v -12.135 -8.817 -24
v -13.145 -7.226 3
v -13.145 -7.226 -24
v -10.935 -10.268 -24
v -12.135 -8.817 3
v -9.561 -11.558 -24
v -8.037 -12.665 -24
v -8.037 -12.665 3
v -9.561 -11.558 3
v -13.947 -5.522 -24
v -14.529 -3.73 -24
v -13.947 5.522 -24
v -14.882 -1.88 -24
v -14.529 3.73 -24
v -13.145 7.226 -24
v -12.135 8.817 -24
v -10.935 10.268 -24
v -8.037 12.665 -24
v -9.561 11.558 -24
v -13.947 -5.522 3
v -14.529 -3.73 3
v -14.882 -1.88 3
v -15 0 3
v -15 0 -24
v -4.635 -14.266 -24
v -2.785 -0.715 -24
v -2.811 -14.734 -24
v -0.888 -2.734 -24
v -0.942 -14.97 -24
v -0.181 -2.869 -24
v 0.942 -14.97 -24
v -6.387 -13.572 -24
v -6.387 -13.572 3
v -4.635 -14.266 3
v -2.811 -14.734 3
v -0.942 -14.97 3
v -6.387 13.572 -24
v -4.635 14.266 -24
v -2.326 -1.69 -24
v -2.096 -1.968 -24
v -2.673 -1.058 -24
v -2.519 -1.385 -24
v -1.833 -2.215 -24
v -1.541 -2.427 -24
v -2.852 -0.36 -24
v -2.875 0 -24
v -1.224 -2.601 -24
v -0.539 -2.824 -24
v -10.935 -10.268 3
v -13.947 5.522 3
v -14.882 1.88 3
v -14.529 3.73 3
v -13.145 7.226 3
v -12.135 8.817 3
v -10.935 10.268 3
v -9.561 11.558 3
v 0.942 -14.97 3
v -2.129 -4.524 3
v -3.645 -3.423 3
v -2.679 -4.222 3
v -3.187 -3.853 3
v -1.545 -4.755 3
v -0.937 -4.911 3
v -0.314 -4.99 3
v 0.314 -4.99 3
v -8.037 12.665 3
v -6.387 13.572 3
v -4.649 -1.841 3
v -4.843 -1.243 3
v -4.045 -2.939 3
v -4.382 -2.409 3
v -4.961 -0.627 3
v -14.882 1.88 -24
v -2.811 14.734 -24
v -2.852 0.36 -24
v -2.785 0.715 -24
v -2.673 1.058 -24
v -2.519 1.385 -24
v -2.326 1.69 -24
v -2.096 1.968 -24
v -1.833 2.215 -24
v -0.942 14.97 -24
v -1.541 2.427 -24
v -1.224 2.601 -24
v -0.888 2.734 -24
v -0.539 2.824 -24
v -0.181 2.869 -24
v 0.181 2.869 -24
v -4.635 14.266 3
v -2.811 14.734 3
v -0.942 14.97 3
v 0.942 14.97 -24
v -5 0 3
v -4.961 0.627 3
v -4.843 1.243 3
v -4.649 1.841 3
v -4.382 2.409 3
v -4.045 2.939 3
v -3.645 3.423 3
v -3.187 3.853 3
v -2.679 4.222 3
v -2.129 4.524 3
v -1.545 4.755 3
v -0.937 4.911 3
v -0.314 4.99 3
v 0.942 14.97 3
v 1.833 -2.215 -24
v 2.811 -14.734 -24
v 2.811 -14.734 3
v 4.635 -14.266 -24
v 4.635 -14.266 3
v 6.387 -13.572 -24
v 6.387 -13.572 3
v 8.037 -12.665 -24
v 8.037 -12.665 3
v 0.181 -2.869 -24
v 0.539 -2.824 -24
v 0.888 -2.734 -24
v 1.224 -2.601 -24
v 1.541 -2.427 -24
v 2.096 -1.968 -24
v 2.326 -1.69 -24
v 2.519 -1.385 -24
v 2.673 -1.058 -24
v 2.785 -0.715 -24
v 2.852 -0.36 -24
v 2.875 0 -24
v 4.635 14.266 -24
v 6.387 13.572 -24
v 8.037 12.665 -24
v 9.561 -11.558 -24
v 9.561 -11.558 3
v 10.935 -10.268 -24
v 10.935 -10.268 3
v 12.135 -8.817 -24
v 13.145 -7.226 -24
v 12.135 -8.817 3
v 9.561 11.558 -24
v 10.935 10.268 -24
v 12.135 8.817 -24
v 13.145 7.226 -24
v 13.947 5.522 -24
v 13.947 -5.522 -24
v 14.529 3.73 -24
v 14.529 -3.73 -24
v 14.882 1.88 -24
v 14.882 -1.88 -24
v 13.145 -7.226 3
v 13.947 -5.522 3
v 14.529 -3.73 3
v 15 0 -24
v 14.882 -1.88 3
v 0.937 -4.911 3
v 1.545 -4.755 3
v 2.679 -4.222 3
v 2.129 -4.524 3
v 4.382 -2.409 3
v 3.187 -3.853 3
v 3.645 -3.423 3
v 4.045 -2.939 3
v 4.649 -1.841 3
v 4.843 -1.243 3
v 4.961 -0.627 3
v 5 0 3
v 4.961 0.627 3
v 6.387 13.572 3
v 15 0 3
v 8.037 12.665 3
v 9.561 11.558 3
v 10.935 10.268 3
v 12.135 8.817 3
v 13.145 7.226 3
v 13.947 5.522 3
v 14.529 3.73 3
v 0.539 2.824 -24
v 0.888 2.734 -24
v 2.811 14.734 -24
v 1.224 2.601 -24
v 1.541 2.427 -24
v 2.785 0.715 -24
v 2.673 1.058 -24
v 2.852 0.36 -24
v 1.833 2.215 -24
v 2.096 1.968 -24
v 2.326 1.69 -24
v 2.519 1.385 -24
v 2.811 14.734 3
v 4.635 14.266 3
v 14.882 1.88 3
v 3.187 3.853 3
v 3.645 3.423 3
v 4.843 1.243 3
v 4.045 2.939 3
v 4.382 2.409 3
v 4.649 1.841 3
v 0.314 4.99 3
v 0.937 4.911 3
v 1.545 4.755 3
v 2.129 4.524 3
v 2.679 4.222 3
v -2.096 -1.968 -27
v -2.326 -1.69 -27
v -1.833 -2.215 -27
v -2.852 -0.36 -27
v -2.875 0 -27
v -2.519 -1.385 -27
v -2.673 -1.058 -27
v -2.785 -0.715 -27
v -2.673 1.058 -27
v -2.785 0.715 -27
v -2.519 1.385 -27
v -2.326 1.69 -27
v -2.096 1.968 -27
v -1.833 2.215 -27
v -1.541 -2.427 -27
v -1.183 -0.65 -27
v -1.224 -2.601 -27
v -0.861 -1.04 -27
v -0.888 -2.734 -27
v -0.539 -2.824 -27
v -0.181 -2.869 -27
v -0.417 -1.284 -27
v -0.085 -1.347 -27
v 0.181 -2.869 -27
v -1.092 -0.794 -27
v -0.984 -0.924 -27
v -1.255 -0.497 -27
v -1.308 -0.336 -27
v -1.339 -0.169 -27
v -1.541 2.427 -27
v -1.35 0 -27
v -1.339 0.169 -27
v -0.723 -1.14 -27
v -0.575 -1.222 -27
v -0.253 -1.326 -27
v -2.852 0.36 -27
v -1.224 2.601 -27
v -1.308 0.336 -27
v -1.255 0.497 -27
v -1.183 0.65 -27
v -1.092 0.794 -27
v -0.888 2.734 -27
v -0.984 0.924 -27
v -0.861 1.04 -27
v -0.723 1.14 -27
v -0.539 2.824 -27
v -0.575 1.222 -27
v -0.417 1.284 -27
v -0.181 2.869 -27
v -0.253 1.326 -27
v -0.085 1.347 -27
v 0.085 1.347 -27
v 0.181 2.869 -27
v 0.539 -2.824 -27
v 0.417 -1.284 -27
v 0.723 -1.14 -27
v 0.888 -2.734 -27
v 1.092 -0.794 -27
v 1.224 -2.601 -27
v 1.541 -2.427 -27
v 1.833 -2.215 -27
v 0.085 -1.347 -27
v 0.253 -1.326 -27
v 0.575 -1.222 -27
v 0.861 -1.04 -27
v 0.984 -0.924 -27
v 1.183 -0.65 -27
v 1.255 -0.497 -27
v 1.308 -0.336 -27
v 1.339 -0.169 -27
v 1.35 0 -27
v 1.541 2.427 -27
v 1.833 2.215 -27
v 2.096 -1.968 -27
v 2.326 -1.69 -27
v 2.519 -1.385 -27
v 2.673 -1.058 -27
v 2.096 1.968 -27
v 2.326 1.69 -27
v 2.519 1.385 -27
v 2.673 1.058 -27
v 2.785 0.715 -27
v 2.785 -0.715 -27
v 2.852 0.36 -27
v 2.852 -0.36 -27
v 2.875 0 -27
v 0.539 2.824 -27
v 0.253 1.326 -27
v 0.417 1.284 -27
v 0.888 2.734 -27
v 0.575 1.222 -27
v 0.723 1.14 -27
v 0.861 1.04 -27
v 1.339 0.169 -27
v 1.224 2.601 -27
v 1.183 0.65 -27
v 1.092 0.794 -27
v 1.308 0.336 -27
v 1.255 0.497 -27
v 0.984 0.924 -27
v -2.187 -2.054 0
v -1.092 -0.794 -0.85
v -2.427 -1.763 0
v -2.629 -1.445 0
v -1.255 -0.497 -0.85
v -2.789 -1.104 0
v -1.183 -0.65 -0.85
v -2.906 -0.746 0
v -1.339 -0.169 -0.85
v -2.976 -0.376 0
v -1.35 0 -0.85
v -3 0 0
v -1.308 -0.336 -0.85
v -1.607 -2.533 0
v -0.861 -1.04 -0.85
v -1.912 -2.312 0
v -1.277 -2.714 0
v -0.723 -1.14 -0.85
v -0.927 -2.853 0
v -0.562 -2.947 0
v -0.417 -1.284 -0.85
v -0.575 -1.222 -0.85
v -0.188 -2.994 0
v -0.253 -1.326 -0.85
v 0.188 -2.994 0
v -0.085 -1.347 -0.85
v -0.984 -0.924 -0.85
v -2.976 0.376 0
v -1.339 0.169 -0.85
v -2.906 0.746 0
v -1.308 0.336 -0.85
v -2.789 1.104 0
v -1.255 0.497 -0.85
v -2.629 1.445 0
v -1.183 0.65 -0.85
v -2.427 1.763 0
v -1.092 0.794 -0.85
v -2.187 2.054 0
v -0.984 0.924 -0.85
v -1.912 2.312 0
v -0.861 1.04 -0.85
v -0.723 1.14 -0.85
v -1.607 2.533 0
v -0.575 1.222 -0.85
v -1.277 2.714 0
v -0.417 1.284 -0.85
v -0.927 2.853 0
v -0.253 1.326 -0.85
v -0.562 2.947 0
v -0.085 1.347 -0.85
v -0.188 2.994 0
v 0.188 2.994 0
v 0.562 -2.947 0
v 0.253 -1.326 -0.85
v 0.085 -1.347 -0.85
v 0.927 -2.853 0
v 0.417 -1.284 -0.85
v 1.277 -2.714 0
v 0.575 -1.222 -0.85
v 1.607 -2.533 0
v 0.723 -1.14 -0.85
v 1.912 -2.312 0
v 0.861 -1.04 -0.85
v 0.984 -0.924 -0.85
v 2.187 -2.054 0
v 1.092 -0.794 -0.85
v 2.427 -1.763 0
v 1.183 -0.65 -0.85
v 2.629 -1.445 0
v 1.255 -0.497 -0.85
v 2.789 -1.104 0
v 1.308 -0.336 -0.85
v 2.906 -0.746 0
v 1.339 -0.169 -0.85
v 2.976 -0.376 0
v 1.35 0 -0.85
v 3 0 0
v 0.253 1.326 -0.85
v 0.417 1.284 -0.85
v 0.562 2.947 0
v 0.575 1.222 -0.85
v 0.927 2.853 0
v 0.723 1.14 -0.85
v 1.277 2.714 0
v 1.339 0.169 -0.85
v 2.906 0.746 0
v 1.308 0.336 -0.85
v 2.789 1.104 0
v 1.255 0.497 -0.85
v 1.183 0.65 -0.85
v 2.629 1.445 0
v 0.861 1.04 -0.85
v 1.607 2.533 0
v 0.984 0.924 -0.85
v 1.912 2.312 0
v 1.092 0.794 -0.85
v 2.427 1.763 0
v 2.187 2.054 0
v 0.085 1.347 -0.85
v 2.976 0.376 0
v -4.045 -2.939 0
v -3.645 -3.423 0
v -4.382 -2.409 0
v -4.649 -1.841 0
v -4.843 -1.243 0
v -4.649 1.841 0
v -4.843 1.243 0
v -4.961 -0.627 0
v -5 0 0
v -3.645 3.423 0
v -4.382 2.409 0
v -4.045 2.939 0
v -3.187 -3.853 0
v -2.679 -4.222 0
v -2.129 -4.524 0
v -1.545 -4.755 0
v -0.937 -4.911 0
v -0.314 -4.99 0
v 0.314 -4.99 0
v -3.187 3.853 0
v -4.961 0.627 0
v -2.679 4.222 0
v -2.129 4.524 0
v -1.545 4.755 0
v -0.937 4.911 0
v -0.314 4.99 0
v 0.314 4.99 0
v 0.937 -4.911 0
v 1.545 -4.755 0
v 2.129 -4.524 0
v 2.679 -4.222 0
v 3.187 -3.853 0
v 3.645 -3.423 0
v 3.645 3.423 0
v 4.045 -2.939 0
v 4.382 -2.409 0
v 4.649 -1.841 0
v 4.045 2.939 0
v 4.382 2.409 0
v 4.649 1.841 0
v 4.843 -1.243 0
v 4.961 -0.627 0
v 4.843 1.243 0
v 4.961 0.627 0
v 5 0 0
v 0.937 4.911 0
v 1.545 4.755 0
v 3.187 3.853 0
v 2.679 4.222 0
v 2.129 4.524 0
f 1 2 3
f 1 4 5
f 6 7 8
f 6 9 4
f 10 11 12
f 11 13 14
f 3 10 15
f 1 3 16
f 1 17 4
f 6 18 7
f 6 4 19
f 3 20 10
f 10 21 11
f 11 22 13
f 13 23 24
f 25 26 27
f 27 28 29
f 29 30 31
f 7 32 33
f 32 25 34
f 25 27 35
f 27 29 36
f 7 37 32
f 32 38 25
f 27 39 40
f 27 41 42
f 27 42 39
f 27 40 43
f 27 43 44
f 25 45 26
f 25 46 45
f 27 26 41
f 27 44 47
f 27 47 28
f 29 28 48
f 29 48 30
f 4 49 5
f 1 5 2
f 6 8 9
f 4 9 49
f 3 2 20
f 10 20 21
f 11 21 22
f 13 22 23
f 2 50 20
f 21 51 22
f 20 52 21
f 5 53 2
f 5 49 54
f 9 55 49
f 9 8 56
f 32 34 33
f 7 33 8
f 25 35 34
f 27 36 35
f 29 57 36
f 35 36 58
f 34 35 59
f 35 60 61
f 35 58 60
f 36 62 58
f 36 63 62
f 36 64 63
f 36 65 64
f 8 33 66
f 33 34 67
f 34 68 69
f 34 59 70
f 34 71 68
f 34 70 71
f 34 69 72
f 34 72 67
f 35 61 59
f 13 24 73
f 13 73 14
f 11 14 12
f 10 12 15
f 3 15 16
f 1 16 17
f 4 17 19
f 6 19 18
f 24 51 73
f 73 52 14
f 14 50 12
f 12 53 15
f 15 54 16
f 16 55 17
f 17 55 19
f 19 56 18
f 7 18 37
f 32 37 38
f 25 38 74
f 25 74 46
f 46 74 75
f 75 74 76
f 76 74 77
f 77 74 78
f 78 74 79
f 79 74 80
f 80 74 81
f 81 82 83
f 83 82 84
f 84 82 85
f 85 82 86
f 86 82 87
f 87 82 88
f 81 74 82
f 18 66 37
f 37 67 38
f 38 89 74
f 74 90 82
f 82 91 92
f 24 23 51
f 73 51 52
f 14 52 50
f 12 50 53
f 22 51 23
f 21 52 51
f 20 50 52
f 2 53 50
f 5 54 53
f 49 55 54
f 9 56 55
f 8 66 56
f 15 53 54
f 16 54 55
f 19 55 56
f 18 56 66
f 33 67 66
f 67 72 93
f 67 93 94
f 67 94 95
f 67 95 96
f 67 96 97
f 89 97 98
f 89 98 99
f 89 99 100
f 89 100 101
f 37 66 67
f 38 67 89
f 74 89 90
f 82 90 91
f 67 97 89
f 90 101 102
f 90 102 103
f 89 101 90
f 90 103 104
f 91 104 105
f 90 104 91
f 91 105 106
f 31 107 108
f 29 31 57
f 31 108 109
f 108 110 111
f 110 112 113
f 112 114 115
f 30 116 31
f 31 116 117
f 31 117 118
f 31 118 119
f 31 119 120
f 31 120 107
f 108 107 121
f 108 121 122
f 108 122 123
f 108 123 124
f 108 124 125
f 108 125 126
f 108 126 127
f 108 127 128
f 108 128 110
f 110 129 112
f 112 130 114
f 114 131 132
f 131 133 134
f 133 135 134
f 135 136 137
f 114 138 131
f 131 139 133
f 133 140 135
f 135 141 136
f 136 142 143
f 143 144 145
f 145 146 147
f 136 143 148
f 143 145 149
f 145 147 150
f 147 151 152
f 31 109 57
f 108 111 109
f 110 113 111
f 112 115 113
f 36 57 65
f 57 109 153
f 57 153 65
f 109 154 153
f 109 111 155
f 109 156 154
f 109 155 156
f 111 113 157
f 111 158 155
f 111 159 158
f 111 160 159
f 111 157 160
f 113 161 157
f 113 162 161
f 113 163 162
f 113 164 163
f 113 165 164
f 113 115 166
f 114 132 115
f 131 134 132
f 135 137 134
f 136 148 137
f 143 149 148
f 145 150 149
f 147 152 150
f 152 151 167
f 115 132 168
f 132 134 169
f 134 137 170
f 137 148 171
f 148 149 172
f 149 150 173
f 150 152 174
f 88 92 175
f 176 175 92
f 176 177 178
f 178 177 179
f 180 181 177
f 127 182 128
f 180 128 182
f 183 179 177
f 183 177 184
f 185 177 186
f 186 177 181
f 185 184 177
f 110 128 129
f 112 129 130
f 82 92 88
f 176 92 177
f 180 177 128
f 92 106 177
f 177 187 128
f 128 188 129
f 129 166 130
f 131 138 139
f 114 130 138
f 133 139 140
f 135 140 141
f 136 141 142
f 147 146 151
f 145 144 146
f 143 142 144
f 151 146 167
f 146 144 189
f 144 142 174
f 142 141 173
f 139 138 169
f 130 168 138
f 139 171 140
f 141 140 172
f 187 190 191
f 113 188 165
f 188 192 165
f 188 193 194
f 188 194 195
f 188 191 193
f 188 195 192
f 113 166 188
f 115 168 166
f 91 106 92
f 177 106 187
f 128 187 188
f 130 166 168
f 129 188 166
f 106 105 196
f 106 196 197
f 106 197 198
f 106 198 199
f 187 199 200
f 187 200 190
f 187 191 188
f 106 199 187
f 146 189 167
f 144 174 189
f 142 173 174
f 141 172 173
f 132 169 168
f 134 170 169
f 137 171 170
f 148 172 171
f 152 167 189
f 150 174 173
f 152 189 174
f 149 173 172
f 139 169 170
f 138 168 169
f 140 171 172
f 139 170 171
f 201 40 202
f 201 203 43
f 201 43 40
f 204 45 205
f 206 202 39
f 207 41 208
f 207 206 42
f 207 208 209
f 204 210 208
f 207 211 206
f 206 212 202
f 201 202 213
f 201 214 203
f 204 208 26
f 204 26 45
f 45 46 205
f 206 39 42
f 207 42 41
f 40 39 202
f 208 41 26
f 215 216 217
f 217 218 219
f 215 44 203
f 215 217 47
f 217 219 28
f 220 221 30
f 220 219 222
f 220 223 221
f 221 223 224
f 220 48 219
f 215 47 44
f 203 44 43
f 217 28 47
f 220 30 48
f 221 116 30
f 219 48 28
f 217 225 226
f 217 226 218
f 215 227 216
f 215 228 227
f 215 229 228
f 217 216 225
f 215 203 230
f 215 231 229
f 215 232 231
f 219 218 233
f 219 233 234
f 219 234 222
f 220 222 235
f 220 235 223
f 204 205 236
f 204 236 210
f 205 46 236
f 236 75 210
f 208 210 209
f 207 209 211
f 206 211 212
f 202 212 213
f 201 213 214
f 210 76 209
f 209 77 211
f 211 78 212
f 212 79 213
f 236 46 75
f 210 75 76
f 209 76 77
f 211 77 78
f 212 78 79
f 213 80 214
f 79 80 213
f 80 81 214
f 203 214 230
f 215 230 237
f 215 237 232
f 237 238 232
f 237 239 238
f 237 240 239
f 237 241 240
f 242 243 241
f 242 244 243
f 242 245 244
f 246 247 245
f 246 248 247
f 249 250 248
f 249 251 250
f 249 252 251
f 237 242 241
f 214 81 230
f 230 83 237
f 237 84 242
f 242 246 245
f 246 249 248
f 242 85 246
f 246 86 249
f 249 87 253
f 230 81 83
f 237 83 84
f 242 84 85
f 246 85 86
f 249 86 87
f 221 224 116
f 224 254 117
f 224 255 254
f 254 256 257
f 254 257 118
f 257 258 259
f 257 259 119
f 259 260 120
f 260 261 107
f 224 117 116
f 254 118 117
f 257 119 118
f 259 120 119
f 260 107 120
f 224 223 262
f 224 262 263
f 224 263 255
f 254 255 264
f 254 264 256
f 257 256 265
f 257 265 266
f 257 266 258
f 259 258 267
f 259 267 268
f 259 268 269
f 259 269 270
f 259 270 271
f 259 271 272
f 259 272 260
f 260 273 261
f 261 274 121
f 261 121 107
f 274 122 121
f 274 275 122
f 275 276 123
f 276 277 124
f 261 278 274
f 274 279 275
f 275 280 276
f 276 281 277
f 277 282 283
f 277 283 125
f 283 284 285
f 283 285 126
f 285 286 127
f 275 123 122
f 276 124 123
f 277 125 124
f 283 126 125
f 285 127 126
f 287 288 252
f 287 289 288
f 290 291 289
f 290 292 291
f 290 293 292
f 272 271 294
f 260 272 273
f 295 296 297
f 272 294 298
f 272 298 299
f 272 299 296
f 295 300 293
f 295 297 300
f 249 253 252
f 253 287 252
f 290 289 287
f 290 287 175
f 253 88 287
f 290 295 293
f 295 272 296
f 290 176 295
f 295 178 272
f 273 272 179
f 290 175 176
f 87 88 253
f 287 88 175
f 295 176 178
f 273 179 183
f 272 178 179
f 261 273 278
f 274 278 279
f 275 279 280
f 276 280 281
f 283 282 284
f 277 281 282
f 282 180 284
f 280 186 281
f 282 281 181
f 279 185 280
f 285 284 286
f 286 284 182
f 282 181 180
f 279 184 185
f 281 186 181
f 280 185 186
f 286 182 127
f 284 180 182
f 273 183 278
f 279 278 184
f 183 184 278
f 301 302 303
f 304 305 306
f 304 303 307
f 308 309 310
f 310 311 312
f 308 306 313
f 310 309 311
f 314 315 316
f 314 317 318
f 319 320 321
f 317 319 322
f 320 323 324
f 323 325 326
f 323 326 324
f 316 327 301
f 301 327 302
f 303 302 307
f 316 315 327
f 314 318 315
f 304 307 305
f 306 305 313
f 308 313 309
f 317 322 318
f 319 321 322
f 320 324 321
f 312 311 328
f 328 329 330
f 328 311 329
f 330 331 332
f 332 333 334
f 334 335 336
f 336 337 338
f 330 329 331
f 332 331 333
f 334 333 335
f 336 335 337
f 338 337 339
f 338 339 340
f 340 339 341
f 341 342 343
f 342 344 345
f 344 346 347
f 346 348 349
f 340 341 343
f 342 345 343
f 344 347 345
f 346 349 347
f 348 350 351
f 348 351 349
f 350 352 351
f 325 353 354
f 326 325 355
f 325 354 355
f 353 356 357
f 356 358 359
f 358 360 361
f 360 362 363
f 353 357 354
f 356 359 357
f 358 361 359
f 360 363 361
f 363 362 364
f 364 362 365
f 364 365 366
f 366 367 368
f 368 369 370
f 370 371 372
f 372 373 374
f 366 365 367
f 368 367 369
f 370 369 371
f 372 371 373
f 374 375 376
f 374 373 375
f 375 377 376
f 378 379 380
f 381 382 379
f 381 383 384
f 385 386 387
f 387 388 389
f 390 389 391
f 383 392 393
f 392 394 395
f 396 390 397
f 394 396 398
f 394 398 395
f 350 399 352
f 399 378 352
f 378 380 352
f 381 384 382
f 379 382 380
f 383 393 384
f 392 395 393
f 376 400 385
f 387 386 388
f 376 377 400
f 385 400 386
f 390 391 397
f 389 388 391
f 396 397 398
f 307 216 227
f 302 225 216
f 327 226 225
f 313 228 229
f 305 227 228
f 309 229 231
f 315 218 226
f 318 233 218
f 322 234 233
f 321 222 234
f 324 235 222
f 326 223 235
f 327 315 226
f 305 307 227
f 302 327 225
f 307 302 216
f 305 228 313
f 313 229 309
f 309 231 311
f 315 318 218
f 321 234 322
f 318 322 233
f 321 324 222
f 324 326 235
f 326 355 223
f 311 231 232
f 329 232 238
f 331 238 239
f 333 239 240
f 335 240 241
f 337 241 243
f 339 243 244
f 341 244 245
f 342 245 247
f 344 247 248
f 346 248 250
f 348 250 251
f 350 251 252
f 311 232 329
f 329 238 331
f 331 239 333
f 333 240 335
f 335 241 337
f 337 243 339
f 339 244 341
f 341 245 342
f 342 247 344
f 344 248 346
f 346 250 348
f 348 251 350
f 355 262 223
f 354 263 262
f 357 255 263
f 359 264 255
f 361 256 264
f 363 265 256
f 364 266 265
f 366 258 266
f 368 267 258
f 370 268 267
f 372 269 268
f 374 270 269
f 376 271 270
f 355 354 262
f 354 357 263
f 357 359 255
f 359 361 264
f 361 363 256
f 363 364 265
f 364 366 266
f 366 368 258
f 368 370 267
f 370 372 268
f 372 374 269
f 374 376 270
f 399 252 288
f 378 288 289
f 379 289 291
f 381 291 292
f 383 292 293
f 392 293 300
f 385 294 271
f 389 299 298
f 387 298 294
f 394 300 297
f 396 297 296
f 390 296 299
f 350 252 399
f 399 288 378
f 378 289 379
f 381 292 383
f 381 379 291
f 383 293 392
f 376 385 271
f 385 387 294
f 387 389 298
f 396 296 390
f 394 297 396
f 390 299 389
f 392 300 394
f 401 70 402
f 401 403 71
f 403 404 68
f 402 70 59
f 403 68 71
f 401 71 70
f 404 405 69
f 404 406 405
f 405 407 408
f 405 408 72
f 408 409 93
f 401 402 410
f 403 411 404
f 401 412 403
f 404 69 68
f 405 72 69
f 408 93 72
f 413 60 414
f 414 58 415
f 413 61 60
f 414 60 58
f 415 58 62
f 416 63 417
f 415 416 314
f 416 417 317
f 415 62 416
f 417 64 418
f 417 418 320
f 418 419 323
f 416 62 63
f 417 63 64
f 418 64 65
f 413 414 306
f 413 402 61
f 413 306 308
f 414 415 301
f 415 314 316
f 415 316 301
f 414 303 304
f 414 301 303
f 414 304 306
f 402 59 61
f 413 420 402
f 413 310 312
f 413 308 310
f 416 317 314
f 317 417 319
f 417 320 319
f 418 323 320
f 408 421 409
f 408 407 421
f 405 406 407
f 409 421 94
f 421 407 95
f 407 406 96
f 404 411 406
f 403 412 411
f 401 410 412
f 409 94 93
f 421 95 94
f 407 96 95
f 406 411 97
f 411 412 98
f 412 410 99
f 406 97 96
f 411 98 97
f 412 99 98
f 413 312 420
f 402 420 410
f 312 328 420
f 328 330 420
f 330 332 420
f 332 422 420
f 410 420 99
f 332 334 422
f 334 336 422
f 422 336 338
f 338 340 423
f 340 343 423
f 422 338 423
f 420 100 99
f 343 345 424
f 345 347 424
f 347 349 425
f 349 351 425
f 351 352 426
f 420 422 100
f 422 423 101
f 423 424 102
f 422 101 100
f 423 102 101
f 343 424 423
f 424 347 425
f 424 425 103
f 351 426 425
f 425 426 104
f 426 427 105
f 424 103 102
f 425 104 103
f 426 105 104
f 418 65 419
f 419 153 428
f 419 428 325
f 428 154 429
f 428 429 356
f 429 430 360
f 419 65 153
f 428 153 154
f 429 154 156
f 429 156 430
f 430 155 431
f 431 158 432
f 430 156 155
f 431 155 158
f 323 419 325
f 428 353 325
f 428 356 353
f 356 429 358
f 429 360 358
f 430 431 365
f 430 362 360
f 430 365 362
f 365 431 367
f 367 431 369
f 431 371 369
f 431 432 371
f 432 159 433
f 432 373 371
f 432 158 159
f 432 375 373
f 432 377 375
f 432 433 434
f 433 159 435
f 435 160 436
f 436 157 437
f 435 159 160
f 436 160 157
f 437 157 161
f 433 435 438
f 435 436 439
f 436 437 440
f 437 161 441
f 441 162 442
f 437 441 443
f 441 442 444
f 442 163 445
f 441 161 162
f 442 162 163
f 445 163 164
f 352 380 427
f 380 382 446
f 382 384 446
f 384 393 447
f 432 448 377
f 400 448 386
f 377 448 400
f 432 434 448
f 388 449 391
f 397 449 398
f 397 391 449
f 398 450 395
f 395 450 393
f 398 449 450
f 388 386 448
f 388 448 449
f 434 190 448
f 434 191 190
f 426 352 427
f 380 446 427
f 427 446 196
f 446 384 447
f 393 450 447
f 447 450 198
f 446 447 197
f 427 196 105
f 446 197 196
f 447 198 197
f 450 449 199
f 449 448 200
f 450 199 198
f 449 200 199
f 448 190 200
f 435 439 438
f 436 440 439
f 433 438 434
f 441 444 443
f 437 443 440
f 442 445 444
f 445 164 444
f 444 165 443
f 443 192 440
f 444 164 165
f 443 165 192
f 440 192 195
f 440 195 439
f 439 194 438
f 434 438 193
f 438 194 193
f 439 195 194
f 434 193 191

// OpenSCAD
$fn = 50;

difference() {
	union() {
		translate(v = [0, 0, -24.0]) {
			cylinder(h = 27, r = 15.0);
		}
		#translate(v = [0, 0, -27.0]) {
			cylinder(h = 27, r = 2.875);
		}
	}
	union() {
		translate(v = [0, 0, 0]) {
			rotate(a = [0, 0, 0]) {
				difference() {
					union() {
						translate(v = [0, 0, -27.0]) {
							cylinder(h = 27, r = 1.0);
						}
						translate(v = [0, 0, -0.85]) {
							cylinder(h = 0.85, r1 = 1.35, r2 = 3.0);
						}
						translate(v = [0, 0, -27.0]) {
							cylinder(h = 27, r = 1.35);
						}
						translate(v = [0, 0, -27.0]) {
							cylinder(h = 27, r = 1.0);
						}
					}
					union();
				}
			}
		}
		#cylinder(h = 3, r = 5.0);
	}
}
